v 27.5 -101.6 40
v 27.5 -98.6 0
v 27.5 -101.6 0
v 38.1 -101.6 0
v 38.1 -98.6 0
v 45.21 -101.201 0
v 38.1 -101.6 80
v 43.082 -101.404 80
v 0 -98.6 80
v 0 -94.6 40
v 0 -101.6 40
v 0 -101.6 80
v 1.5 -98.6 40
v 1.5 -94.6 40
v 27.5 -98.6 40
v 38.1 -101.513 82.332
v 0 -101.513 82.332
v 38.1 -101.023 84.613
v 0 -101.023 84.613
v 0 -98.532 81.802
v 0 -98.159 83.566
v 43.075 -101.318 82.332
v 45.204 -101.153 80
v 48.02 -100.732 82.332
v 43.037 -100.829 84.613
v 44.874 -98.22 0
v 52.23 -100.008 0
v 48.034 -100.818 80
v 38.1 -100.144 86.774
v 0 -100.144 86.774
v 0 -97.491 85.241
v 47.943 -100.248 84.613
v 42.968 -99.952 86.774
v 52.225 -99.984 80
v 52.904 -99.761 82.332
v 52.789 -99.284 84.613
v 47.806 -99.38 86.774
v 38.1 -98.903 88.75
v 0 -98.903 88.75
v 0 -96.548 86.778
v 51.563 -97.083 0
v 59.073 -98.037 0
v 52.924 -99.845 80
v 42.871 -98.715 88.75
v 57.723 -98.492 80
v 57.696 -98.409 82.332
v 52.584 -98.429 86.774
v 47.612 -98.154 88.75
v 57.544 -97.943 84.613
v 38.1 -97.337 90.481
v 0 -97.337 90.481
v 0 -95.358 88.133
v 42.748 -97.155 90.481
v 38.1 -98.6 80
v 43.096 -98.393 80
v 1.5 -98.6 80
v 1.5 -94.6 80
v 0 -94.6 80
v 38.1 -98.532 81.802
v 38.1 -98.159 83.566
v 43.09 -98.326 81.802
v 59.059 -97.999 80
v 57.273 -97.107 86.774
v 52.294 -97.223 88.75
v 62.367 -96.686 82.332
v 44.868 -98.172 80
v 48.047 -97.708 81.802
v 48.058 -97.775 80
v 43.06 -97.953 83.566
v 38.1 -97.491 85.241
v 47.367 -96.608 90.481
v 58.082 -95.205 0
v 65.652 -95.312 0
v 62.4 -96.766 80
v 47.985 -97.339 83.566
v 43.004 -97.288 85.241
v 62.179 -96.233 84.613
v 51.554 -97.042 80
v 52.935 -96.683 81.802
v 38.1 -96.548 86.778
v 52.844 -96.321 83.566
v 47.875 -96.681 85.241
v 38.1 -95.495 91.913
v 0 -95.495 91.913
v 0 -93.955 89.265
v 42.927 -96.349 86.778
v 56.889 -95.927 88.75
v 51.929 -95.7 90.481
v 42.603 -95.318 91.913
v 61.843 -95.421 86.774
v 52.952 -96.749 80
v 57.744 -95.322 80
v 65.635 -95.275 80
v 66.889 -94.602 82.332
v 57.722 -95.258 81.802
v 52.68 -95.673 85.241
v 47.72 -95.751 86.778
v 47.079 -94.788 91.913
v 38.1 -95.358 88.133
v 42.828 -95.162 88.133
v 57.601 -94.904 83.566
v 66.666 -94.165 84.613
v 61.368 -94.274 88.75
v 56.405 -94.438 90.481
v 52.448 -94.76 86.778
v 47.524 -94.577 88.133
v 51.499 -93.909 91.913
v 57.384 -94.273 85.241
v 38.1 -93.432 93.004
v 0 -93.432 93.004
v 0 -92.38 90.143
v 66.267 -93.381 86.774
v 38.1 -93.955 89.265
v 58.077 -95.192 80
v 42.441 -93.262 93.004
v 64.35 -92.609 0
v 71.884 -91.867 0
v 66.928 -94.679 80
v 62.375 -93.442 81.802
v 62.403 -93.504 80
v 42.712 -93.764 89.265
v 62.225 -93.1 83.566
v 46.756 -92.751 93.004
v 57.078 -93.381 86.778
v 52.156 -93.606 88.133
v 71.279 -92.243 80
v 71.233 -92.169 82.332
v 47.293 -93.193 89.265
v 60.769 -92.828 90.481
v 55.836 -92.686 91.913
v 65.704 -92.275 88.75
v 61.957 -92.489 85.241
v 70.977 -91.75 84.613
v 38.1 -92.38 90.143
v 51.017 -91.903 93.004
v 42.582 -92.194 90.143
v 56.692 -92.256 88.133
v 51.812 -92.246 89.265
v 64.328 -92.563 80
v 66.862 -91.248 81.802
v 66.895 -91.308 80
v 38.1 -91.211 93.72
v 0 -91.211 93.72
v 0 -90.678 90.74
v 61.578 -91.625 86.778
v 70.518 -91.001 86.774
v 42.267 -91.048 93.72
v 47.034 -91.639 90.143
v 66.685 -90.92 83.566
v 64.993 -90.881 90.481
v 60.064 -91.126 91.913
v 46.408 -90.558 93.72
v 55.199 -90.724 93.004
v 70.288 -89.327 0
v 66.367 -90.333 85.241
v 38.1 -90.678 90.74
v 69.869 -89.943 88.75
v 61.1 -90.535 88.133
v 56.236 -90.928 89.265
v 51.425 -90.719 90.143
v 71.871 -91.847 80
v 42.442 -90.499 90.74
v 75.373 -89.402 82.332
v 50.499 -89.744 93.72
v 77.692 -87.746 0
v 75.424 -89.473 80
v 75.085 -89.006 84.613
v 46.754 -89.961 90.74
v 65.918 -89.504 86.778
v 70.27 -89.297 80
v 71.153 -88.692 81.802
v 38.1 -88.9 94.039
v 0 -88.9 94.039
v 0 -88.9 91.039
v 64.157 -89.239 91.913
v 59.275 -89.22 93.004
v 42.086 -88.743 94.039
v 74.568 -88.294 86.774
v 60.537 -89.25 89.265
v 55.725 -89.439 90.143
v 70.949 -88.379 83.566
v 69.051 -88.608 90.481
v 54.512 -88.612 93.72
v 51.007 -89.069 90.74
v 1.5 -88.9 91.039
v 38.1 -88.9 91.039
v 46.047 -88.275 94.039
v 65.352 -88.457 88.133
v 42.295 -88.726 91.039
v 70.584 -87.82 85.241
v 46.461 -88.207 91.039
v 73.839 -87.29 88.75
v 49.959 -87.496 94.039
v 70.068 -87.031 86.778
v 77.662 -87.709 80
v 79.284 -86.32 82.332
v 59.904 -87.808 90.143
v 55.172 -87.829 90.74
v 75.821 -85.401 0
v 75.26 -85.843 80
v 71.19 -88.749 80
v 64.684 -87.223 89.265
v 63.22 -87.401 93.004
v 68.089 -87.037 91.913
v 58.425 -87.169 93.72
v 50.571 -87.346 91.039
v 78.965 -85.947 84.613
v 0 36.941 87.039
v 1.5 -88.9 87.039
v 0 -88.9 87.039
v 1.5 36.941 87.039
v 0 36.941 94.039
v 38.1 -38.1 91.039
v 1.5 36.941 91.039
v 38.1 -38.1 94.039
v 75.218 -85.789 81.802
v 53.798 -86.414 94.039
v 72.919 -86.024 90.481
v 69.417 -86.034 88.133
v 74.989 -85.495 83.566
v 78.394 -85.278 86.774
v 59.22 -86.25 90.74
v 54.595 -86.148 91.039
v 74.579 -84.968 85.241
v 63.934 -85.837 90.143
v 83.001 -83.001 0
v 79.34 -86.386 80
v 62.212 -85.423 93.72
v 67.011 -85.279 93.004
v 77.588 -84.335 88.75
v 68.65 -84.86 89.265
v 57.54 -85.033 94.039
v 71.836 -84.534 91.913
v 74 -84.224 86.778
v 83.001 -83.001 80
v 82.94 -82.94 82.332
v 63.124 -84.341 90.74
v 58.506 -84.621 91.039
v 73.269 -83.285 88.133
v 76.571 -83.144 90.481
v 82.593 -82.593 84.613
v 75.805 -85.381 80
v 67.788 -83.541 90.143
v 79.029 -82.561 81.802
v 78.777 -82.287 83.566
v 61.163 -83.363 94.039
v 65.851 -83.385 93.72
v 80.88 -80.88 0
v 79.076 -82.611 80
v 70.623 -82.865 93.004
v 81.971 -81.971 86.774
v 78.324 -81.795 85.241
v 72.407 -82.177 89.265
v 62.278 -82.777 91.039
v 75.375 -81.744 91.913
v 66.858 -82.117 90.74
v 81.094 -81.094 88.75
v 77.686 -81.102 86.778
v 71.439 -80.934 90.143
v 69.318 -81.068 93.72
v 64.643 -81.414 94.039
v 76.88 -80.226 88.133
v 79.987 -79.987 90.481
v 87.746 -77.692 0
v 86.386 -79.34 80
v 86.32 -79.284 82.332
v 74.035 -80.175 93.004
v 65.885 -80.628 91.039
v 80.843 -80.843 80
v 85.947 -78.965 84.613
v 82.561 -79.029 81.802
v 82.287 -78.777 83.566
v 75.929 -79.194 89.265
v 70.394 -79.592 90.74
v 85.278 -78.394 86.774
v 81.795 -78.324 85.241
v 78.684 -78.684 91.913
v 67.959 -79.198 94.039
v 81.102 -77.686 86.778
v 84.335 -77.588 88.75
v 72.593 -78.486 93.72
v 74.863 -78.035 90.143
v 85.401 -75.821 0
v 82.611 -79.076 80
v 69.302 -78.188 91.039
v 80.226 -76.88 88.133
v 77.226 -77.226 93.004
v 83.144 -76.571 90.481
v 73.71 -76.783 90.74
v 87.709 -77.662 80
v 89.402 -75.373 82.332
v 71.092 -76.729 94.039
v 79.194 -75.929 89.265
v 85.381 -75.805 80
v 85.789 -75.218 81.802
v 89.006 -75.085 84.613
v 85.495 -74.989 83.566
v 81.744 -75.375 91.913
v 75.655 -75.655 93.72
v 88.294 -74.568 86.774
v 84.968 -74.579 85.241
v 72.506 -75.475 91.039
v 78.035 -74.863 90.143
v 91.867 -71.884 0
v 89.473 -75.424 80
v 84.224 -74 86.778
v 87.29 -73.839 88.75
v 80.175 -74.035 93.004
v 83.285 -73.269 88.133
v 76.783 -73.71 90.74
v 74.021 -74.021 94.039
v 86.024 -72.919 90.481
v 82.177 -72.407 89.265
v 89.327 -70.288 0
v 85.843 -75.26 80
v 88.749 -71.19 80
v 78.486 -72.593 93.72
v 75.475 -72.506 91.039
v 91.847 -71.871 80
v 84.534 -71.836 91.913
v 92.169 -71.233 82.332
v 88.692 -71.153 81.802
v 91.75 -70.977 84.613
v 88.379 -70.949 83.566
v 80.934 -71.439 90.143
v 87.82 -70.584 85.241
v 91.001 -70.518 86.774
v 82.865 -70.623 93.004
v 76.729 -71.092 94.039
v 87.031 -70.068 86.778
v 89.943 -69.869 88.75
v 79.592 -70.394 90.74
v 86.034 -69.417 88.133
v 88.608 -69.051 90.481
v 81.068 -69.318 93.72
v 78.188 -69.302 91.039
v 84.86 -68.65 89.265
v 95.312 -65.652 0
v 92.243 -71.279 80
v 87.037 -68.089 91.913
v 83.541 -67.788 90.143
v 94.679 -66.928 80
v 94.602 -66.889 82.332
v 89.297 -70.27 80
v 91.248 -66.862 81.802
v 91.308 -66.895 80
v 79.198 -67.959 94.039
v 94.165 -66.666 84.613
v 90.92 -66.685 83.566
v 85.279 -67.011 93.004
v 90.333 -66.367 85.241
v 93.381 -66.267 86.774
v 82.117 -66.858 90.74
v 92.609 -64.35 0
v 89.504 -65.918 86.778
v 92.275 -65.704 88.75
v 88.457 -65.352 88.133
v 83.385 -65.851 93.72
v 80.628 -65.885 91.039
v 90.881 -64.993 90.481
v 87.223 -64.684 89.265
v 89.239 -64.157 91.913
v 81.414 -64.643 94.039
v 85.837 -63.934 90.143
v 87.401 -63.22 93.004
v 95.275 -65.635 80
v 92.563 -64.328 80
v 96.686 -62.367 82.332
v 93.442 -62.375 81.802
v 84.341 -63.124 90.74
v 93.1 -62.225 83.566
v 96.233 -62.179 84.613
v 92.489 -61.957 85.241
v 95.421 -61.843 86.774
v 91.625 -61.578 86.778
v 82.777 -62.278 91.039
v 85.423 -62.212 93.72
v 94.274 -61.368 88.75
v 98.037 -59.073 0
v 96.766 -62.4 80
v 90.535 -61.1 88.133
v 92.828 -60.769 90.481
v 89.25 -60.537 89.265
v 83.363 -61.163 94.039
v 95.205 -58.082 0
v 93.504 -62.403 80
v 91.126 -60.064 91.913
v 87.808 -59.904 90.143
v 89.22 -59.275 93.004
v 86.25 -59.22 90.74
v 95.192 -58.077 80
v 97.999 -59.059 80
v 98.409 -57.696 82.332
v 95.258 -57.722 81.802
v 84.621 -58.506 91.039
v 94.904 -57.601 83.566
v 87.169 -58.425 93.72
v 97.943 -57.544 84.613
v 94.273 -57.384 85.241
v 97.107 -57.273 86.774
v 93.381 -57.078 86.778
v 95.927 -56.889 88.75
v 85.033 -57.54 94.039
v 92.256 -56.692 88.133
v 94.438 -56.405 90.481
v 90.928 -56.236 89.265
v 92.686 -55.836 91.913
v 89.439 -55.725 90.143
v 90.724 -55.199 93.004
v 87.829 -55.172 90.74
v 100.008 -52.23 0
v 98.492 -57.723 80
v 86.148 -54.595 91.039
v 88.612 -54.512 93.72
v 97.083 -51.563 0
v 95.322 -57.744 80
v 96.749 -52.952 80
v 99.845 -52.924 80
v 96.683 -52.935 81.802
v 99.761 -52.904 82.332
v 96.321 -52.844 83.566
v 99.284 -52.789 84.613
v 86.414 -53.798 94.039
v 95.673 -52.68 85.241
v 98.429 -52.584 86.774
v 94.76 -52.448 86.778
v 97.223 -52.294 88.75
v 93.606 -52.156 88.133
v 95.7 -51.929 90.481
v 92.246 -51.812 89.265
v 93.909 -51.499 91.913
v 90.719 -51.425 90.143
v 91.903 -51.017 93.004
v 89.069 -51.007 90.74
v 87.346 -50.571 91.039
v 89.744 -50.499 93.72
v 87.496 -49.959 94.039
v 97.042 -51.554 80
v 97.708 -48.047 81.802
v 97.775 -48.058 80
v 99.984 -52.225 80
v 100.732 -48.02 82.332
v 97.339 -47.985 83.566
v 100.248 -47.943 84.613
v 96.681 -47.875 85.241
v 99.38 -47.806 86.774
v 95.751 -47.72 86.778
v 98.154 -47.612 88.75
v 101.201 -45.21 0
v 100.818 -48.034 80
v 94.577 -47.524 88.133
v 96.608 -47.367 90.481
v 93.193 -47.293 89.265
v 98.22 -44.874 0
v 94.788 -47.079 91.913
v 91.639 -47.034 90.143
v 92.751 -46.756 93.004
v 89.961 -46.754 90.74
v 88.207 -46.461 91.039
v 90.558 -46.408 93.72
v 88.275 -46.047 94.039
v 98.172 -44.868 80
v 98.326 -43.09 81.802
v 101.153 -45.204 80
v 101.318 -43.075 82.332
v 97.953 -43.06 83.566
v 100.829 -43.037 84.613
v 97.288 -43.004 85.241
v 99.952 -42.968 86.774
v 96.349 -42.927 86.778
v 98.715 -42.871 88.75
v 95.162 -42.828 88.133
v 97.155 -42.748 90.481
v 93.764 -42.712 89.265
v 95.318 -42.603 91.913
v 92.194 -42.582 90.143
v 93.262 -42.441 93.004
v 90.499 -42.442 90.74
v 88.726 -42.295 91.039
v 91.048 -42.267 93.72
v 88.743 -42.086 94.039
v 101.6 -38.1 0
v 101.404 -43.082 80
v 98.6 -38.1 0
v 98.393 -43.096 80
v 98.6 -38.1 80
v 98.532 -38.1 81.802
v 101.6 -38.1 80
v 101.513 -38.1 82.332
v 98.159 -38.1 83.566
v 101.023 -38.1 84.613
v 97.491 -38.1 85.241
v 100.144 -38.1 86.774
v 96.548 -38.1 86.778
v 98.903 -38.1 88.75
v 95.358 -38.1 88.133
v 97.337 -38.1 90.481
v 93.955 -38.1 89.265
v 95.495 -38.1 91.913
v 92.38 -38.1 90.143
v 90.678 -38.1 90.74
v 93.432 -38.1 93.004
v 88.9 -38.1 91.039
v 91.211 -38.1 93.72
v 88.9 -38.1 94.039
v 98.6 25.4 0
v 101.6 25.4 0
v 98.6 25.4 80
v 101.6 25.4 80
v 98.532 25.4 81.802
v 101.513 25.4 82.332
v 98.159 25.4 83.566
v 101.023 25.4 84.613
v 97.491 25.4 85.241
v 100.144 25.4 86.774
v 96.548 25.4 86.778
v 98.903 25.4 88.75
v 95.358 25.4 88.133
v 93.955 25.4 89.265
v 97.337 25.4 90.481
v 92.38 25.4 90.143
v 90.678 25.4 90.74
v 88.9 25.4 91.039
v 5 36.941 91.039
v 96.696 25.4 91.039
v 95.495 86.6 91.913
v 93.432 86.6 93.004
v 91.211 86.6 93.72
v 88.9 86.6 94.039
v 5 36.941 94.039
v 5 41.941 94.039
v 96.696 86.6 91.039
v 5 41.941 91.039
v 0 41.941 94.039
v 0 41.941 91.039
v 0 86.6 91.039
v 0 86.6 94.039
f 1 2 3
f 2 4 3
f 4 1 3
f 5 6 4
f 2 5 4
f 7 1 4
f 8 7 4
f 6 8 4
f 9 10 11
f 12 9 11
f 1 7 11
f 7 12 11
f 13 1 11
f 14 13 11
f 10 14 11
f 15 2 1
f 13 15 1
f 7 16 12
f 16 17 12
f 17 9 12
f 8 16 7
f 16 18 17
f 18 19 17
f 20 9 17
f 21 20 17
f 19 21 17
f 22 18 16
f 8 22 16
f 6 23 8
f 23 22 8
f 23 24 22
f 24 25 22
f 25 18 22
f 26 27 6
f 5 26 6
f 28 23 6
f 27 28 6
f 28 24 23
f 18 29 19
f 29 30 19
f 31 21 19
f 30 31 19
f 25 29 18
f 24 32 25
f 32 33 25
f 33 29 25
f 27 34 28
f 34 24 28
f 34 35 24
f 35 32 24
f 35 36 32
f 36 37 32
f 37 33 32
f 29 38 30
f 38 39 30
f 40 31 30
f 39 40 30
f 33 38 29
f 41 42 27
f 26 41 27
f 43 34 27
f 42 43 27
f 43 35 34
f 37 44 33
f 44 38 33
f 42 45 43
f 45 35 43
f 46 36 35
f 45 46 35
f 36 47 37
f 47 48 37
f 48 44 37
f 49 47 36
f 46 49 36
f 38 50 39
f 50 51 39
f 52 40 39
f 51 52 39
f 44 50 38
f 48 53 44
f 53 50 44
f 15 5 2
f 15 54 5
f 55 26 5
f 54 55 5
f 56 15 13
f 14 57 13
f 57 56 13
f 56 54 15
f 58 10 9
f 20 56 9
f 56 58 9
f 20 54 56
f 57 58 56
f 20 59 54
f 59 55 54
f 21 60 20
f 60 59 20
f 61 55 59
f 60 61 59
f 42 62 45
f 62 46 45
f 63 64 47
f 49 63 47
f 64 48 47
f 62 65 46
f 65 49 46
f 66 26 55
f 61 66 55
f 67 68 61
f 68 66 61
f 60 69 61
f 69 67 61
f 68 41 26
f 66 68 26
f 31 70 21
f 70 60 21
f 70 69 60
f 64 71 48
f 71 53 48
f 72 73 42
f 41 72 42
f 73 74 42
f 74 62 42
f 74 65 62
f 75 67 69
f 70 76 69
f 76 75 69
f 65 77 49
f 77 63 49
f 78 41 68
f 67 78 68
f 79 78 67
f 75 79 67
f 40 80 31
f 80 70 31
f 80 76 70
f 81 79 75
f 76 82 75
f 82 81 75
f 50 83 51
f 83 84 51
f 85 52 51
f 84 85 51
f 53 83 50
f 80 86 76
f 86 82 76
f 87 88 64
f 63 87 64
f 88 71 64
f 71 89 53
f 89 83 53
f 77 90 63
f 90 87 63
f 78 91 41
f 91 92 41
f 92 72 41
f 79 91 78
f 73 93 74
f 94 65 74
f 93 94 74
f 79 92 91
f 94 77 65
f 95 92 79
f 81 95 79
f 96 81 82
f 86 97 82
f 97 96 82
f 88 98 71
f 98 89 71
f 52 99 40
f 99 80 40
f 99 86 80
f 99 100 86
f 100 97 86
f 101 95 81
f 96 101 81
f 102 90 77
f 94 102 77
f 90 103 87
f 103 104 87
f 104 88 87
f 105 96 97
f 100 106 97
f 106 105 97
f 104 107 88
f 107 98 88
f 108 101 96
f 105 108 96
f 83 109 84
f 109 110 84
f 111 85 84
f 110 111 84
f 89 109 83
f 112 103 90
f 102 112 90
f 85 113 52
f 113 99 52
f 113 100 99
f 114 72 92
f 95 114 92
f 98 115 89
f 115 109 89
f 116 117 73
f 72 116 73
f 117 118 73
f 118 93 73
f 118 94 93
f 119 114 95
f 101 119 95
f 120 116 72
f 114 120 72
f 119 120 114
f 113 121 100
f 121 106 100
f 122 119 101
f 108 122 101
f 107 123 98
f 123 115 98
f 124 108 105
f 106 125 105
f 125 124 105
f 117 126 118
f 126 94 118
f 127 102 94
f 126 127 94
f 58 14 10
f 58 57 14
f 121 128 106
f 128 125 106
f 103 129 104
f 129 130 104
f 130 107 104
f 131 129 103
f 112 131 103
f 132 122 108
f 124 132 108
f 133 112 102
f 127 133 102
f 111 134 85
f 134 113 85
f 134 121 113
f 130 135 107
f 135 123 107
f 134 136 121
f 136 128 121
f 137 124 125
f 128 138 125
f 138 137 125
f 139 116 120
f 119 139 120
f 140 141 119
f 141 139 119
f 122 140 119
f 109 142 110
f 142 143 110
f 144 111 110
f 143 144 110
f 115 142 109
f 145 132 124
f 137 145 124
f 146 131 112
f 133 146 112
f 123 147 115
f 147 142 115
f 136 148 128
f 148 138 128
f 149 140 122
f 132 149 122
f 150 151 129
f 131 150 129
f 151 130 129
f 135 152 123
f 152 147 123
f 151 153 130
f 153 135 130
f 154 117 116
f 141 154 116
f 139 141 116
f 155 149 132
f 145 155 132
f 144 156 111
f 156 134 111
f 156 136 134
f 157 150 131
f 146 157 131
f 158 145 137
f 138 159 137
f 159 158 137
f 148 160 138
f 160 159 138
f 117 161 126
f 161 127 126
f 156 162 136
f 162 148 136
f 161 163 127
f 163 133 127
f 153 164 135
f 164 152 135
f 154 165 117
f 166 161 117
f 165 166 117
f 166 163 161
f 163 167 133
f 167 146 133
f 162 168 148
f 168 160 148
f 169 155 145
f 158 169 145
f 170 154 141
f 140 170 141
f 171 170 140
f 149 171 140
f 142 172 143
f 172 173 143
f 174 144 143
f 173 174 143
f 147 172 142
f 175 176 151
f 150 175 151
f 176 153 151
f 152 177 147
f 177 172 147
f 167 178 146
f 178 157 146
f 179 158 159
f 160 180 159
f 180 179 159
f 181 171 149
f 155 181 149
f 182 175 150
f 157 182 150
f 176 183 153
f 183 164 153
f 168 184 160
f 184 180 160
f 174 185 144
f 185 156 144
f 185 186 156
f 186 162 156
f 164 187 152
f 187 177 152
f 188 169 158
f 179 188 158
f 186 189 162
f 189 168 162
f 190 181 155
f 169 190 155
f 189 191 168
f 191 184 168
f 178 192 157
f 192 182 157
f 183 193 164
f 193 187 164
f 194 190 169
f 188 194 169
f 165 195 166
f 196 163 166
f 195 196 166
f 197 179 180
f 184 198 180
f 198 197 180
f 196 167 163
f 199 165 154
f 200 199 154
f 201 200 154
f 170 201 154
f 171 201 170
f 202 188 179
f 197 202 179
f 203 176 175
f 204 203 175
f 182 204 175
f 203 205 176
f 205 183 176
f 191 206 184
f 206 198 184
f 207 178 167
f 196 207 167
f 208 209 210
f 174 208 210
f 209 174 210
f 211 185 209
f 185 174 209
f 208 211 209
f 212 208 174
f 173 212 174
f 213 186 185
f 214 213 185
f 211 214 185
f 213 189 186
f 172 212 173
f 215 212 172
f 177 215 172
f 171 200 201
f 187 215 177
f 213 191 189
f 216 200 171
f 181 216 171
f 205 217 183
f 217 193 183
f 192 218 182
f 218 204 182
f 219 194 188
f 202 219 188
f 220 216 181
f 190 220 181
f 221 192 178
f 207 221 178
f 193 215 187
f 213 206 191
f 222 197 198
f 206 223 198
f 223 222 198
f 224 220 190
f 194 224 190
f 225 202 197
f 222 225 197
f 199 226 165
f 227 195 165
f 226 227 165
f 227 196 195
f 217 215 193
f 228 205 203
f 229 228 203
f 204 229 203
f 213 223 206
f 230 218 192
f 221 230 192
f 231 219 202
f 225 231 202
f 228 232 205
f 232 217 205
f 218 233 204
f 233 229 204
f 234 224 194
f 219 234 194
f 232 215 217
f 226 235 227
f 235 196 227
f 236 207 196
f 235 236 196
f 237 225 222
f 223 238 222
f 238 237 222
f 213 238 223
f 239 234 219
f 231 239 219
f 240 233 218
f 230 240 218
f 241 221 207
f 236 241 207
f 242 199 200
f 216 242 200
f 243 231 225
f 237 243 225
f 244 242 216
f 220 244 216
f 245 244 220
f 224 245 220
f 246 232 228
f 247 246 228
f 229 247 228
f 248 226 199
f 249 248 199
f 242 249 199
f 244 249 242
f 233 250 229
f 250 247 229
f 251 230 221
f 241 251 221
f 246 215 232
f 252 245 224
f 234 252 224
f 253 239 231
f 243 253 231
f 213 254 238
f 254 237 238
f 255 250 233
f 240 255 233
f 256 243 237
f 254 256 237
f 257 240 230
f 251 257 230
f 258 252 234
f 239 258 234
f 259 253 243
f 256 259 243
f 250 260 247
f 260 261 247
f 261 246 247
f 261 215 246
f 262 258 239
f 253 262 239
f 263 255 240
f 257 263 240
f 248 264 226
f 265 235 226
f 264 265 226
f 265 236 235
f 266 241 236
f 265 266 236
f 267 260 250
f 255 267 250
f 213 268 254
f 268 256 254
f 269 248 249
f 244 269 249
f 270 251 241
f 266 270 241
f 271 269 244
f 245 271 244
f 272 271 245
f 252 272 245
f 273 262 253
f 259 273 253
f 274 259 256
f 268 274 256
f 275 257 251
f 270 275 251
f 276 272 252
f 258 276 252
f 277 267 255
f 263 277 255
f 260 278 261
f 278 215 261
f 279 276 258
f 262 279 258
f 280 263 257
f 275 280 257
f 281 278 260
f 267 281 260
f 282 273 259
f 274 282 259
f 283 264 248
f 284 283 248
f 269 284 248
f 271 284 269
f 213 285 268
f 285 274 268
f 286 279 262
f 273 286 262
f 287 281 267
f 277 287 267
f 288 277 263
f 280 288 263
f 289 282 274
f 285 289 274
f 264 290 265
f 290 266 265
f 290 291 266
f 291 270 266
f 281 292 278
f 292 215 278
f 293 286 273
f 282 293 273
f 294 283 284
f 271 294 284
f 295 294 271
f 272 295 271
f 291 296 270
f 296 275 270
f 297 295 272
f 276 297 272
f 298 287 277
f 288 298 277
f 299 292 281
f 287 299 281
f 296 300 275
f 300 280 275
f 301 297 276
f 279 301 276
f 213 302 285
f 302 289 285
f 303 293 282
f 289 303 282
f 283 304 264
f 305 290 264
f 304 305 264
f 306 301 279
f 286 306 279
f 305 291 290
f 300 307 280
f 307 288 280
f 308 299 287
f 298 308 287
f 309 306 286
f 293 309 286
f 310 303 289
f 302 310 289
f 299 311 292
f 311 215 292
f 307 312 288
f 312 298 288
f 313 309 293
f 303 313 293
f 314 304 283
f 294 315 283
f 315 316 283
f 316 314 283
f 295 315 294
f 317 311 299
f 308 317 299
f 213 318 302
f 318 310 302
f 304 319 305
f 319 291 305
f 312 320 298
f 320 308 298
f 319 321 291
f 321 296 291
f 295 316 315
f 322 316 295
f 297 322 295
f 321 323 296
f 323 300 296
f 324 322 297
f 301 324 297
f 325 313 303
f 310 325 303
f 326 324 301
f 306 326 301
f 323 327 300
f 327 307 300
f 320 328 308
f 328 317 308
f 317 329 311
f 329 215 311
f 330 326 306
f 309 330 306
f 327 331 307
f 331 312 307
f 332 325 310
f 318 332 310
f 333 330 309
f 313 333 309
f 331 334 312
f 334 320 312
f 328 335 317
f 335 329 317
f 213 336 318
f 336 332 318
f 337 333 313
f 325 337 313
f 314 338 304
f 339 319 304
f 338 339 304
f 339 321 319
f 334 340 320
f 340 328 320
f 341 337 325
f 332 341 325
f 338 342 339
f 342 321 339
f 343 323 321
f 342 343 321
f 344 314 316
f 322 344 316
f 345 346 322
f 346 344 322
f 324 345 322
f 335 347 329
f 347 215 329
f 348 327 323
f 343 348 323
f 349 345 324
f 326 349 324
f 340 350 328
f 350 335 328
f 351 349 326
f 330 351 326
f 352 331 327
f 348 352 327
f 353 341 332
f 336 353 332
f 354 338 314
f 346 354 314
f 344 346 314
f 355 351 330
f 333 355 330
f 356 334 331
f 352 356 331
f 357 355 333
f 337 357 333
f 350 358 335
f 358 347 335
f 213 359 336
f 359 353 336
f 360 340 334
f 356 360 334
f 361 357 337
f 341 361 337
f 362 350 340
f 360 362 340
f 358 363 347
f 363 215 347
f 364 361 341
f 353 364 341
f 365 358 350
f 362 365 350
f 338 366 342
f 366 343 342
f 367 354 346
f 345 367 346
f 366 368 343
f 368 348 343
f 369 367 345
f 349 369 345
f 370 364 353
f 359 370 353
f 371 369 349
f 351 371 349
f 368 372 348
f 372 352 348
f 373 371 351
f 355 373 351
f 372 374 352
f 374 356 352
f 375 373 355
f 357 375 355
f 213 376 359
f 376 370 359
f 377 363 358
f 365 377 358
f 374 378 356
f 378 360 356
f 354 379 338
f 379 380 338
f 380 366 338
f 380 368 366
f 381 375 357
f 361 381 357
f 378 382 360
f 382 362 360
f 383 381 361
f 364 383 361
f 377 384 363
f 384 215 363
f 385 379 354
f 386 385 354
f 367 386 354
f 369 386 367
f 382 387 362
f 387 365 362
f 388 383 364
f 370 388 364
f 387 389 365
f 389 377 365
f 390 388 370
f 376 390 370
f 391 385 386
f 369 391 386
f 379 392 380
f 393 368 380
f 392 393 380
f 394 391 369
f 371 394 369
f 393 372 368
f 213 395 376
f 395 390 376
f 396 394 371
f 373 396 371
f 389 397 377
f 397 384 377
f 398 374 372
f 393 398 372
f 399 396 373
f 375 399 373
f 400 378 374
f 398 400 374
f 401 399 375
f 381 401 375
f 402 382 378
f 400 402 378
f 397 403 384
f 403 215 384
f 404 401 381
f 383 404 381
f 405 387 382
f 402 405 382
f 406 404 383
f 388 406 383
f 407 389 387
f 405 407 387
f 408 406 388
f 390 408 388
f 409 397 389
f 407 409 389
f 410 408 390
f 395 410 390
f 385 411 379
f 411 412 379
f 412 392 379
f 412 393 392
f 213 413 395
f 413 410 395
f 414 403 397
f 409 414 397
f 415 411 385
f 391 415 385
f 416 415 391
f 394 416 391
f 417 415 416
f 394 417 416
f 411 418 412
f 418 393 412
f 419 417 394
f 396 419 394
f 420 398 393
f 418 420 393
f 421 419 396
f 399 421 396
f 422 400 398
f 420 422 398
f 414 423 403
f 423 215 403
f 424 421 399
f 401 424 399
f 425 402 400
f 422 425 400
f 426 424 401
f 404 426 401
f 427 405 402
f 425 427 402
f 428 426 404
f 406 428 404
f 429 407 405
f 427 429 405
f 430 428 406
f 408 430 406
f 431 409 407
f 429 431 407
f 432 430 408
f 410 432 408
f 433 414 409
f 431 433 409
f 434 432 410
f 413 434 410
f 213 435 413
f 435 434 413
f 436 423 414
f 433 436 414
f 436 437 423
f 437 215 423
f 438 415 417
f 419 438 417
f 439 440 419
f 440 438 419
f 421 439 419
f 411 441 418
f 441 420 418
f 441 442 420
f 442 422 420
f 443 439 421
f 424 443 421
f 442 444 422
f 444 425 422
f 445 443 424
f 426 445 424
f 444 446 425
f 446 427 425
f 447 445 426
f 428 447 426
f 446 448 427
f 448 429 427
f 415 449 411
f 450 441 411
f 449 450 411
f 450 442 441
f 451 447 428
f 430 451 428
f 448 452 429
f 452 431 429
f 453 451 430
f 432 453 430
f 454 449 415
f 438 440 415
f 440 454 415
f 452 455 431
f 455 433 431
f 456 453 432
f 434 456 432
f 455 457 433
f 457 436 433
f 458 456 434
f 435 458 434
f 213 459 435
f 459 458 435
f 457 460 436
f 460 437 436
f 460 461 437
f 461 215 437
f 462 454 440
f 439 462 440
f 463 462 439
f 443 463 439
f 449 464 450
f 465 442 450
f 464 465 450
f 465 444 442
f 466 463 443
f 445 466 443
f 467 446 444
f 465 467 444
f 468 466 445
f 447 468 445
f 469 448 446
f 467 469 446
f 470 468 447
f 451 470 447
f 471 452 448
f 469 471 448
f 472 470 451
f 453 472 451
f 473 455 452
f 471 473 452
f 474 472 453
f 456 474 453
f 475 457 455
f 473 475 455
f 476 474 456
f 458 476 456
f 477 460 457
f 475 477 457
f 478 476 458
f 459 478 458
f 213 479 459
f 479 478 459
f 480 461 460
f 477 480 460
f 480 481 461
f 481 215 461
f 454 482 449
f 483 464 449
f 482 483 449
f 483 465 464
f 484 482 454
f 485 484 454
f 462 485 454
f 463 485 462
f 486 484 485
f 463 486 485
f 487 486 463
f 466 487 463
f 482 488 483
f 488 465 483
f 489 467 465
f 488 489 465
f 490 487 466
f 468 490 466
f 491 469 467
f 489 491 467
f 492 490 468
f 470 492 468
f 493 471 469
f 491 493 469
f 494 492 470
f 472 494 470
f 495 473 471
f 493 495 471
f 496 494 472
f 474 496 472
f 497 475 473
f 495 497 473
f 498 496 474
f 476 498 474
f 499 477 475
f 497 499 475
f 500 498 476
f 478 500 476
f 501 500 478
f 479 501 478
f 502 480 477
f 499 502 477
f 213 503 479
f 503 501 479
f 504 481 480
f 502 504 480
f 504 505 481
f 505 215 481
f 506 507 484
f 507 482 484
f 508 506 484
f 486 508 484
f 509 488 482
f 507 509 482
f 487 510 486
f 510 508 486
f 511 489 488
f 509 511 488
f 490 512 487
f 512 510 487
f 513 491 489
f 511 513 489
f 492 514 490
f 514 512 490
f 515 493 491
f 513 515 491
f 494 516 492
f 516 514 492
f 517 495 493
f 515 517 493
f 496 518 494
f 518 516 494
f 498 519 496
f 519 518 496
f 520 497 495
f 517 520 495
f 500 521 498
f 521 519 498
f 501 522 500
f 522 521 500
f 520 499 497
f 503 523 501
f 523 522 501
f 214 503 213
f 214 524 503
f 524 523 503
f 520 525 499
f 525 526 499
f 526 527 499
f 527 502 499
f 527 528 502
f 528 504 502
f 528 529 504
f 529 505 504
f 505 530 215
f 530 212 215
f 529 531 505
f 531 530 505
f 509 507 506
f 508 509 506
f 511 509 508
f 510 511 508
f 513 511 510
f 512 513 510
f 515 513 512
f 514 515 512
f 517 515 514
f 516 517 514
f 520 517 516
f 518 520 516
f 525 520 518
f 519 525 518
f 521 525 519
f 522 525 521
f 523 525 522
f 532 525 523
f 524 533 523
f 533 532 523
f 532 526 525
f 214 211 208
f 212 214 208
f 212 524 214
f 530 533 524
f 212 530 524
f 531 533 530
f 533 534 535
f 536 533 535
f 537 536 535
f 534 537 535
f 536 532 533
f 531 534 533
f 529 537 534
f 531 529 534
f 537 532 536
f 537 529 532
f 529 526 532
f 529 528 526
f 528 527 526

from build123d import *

# Parameters (mm, degrees)
BOSS_EXTRUDE1_DEPTH = 60
SKETCH6_W           = 76.2
SKETCH6_H           = 139.7
BOSS_EXTRUDE3_DEPTH = 3
SKETCH7_W           = 254.695348458
SKETCH7_H           = 135.329086622
CUT_EXTRUDE1_DEPTH  = 76.2
SKETCH8_W           = 10
SKETCH8_H           = 5
CUT_EXTRUDE2_DEPTH  = 172.74190537
SKETCH9_W           = 55
SKETCH9_H           = 40
CUT_EXTRUDE3_DEPTH  = 246.885251985
SKETCH10_W          = 200.764393162
SKETCH10_H          = 14.388440844
CUT_EXTRUDE4_DEPTH  = 15
BOSS_EXTRUDE4_DEPTH = 4
BOSS_EXTRUDE5_DEPTH = 4
SKETCH13_W          = 162.798604232
SKETCH13_H          = 246.735608635
CUT_EXTRUDE5_DEPTH  = 101.6


with BuildPart() as part:
    # Sketch1 → Boss-Extrude1 (new body)
    with BuildSketch(Plane.XY):
        with BuildLine():
            Line((-101.6, 101.6), (-101.6, -38.1))
            ThreePointArc((-101.6, -38.1), (-83.001280605, -83.001280605), (-38.1, -101.6))
            Line((-38.1, -101.6), (38.1, -101.6))
            ThreePointArc((38.1, -101.6), (83.001280605, -83.001280605), (101.6, -38.1))
            Line((101.6, -38.1), (101.6, 101.6))
            Line((101.6, 101.6), (-101.6, 101.6))
        make_face()
        with BuildLine():
            Line((-98.6, 98.6), (-98.6, -38.1))
            ThreePointArc((-98.6, -38.1), (-80.879960262, -80.879960262), (-38.1, -98.6))
            Line((-38.1, -98.6), (38.1, -98.6))
            ThreePointArc((38.1, -98.6), (80.879960262, -80.879960262), (98.6, -38.1))
            Line((98.6, -38.1), (98.6, 98.6))
            Line((98.6, 98.6), (-98.6, 98.6))
        make_face(mode=Mode.SUBTRACT)
    extrude(amount=BOSS_EXTRUDE1_DEPTH)

    # Sweep2: sweep along a path in Sketch5
    with BuildLine(Plane.XY.offset(60)) as sweep2_path:
        Line((-100.1, 101.6), (-100.1, -38.1))
        ThreePointArc((-100.1, -38.1), (-81.940620434, -81.940620434), (-38.1, -100.1))
        Line((-38.1, -100.1), (38.1, -100.1))
        ThreePointArc((38.1, -100.1), (81.940620434, -81.940620434), (100.1, -38.1))
        Line((100.1, -38.1), (100.1, 101.6))
    # Sketch3 → Sweep2 (sweep)
    with BuildSketch(Plane(origin=(0, 101.6, 0), x_dir=(1, 0, 0), z_dir=(0, 1, 0))):
        with BuildLine():
            Line((-38.1, -91.039099262), (-88.9, -91.039099262))
            ThreePointArc((-88.9, -91.039099262), (-95.981959893, -87.480761361), (-98.6, -80))
            Line((-98.6, -80), (-98.6, -60))
            Line((-98.6, -60), (-101.6, -60))
            Line((-101.6, -60), (-101.6, -80))
            ThreePointArc((-101.6, -80), (-98.157592659, -89.649805752), (-88.9, -94.039099262))
            Line((-88.9, -94.039099262), (-38.1, -94.039099262))
            Line((-38.1, -94.039099262), (-38.1, -91.039099262))
        make_face()
    sweep(path=sweep2_path.line)

    # Sketch6 → Boss-Extrude3 (add)
    with BuildSketch(Plane.XY.offset(94.039099262)):
        with Locations((0, 31.75)):
            Rectangle(SKETCH6_W, SKETCH6_H)
    extrude(amount=-BOSS_EXTRUDE3_DEPTH)

    # Sketch7 → Cut-Extrude1 (cut)
    with BuildSketch(Plane(origin=(0, 101.6, 0), x_dir=(1, 0, 0), z_dir=(0, 1, 0))):
        with Locations((-4.889183354, -23.374555951)):
            Rectangle(SKETCH7_W, SKETCH7_H)
    extrude(amount=-CUT_EXTRUDE1_DEPTH, mode=Mode.SUBTRACT)

    # Sketch8 → Cut-Extrude2 (cut, through all)
    with BuildSketch(Plane.XY.offset(94.039099262)):
        with Locations((0, 39.440517612)):
            Rectangle(SKETCH8_W, SKETCH8_H)
    extrude(amount=-CUT_EXTRUDE2_DEPTH, mode=Mode.SUBTRACT)

    # Sketch9 → Cut-Extrude3 (cut, through all)
    with BuildSketch(Plane(origin=(0, -101.6, 0), x_dir=(-1, 0, 0), z_dir=(0, -1, 0))):
        with Locations((0, -20)):
            Rectangle(SKETCH9_W, SKETCH9_H)
    extrude(amount=-CUT_EXTRUDE3_DEPTH, mode=Mode.SUBTRACT)

    # Sketch10 → Cut-Extrude4 (cut)
    with BuildSketch(Plane(origin=(0, 101.6, 0), x_dir=(1, 0, 0), z_dir=(0, 1, 0))):
        with Locations((0, -94.039099262)):
            Rectangle(SKETCH10_W, SKETCH10_H)
    extrude(amount=-CUT_EXTRUDE4_DEPTH, mode=Mode.SUBTRACT)

    # Sketch11 → Boss-Extrude4 (add)
    with BuildSketch(Plane(origin=(0, -98.6, 0), x_dir=(1, 0, 0), z_dir=(0, 1, 0))):
        Polygon((0, -80), (1.5, -80), (1.5, -40), (0, -40), (-1.5, -40), (-1.5, -80), align=None)
    extrude(amount=BOSS_EXTRUDE4_DEPTH)

    # Sketch12 → Boss-Extrude5 (add)
    with BuildSketch(Plane(origin=(0, 0, 91.039099262), x_dir=(-1, 0, 0), z_dir=(0, 0, -1))):
        Polygon((-1.5, -88.9), (0, -88.9), (1.5, -88.9), (1.5, 36.940517612), (-1.5, 36.940517612), align=None)
    extrude(amount=BOSS_EXTRUDE5_DEPTH)

    # Sketch13 → Cut-Extrude5 (cut)
    with BuildSketch(Plane.ZY.offset(101.6)):
        with Locations((24.668934791, -31.353857456)):
            Rectangle(SKETCH13_W, SKETCH13_H)
    extrude(amount=-CUT_EXTRUDE5_DEPTH, mode=Mode.SUBTRACT)


with BuildPart() as cut_extrude5_kept_piece:
    # of the separate pieces the step leaves, the one the design keeps (cut_extrude5_pieces_kept)
    add(part.part.solids().sort_by_distance((0, 86.6, 91.039099262))[0])


solid = cut_extrude5_kept_piece.part
